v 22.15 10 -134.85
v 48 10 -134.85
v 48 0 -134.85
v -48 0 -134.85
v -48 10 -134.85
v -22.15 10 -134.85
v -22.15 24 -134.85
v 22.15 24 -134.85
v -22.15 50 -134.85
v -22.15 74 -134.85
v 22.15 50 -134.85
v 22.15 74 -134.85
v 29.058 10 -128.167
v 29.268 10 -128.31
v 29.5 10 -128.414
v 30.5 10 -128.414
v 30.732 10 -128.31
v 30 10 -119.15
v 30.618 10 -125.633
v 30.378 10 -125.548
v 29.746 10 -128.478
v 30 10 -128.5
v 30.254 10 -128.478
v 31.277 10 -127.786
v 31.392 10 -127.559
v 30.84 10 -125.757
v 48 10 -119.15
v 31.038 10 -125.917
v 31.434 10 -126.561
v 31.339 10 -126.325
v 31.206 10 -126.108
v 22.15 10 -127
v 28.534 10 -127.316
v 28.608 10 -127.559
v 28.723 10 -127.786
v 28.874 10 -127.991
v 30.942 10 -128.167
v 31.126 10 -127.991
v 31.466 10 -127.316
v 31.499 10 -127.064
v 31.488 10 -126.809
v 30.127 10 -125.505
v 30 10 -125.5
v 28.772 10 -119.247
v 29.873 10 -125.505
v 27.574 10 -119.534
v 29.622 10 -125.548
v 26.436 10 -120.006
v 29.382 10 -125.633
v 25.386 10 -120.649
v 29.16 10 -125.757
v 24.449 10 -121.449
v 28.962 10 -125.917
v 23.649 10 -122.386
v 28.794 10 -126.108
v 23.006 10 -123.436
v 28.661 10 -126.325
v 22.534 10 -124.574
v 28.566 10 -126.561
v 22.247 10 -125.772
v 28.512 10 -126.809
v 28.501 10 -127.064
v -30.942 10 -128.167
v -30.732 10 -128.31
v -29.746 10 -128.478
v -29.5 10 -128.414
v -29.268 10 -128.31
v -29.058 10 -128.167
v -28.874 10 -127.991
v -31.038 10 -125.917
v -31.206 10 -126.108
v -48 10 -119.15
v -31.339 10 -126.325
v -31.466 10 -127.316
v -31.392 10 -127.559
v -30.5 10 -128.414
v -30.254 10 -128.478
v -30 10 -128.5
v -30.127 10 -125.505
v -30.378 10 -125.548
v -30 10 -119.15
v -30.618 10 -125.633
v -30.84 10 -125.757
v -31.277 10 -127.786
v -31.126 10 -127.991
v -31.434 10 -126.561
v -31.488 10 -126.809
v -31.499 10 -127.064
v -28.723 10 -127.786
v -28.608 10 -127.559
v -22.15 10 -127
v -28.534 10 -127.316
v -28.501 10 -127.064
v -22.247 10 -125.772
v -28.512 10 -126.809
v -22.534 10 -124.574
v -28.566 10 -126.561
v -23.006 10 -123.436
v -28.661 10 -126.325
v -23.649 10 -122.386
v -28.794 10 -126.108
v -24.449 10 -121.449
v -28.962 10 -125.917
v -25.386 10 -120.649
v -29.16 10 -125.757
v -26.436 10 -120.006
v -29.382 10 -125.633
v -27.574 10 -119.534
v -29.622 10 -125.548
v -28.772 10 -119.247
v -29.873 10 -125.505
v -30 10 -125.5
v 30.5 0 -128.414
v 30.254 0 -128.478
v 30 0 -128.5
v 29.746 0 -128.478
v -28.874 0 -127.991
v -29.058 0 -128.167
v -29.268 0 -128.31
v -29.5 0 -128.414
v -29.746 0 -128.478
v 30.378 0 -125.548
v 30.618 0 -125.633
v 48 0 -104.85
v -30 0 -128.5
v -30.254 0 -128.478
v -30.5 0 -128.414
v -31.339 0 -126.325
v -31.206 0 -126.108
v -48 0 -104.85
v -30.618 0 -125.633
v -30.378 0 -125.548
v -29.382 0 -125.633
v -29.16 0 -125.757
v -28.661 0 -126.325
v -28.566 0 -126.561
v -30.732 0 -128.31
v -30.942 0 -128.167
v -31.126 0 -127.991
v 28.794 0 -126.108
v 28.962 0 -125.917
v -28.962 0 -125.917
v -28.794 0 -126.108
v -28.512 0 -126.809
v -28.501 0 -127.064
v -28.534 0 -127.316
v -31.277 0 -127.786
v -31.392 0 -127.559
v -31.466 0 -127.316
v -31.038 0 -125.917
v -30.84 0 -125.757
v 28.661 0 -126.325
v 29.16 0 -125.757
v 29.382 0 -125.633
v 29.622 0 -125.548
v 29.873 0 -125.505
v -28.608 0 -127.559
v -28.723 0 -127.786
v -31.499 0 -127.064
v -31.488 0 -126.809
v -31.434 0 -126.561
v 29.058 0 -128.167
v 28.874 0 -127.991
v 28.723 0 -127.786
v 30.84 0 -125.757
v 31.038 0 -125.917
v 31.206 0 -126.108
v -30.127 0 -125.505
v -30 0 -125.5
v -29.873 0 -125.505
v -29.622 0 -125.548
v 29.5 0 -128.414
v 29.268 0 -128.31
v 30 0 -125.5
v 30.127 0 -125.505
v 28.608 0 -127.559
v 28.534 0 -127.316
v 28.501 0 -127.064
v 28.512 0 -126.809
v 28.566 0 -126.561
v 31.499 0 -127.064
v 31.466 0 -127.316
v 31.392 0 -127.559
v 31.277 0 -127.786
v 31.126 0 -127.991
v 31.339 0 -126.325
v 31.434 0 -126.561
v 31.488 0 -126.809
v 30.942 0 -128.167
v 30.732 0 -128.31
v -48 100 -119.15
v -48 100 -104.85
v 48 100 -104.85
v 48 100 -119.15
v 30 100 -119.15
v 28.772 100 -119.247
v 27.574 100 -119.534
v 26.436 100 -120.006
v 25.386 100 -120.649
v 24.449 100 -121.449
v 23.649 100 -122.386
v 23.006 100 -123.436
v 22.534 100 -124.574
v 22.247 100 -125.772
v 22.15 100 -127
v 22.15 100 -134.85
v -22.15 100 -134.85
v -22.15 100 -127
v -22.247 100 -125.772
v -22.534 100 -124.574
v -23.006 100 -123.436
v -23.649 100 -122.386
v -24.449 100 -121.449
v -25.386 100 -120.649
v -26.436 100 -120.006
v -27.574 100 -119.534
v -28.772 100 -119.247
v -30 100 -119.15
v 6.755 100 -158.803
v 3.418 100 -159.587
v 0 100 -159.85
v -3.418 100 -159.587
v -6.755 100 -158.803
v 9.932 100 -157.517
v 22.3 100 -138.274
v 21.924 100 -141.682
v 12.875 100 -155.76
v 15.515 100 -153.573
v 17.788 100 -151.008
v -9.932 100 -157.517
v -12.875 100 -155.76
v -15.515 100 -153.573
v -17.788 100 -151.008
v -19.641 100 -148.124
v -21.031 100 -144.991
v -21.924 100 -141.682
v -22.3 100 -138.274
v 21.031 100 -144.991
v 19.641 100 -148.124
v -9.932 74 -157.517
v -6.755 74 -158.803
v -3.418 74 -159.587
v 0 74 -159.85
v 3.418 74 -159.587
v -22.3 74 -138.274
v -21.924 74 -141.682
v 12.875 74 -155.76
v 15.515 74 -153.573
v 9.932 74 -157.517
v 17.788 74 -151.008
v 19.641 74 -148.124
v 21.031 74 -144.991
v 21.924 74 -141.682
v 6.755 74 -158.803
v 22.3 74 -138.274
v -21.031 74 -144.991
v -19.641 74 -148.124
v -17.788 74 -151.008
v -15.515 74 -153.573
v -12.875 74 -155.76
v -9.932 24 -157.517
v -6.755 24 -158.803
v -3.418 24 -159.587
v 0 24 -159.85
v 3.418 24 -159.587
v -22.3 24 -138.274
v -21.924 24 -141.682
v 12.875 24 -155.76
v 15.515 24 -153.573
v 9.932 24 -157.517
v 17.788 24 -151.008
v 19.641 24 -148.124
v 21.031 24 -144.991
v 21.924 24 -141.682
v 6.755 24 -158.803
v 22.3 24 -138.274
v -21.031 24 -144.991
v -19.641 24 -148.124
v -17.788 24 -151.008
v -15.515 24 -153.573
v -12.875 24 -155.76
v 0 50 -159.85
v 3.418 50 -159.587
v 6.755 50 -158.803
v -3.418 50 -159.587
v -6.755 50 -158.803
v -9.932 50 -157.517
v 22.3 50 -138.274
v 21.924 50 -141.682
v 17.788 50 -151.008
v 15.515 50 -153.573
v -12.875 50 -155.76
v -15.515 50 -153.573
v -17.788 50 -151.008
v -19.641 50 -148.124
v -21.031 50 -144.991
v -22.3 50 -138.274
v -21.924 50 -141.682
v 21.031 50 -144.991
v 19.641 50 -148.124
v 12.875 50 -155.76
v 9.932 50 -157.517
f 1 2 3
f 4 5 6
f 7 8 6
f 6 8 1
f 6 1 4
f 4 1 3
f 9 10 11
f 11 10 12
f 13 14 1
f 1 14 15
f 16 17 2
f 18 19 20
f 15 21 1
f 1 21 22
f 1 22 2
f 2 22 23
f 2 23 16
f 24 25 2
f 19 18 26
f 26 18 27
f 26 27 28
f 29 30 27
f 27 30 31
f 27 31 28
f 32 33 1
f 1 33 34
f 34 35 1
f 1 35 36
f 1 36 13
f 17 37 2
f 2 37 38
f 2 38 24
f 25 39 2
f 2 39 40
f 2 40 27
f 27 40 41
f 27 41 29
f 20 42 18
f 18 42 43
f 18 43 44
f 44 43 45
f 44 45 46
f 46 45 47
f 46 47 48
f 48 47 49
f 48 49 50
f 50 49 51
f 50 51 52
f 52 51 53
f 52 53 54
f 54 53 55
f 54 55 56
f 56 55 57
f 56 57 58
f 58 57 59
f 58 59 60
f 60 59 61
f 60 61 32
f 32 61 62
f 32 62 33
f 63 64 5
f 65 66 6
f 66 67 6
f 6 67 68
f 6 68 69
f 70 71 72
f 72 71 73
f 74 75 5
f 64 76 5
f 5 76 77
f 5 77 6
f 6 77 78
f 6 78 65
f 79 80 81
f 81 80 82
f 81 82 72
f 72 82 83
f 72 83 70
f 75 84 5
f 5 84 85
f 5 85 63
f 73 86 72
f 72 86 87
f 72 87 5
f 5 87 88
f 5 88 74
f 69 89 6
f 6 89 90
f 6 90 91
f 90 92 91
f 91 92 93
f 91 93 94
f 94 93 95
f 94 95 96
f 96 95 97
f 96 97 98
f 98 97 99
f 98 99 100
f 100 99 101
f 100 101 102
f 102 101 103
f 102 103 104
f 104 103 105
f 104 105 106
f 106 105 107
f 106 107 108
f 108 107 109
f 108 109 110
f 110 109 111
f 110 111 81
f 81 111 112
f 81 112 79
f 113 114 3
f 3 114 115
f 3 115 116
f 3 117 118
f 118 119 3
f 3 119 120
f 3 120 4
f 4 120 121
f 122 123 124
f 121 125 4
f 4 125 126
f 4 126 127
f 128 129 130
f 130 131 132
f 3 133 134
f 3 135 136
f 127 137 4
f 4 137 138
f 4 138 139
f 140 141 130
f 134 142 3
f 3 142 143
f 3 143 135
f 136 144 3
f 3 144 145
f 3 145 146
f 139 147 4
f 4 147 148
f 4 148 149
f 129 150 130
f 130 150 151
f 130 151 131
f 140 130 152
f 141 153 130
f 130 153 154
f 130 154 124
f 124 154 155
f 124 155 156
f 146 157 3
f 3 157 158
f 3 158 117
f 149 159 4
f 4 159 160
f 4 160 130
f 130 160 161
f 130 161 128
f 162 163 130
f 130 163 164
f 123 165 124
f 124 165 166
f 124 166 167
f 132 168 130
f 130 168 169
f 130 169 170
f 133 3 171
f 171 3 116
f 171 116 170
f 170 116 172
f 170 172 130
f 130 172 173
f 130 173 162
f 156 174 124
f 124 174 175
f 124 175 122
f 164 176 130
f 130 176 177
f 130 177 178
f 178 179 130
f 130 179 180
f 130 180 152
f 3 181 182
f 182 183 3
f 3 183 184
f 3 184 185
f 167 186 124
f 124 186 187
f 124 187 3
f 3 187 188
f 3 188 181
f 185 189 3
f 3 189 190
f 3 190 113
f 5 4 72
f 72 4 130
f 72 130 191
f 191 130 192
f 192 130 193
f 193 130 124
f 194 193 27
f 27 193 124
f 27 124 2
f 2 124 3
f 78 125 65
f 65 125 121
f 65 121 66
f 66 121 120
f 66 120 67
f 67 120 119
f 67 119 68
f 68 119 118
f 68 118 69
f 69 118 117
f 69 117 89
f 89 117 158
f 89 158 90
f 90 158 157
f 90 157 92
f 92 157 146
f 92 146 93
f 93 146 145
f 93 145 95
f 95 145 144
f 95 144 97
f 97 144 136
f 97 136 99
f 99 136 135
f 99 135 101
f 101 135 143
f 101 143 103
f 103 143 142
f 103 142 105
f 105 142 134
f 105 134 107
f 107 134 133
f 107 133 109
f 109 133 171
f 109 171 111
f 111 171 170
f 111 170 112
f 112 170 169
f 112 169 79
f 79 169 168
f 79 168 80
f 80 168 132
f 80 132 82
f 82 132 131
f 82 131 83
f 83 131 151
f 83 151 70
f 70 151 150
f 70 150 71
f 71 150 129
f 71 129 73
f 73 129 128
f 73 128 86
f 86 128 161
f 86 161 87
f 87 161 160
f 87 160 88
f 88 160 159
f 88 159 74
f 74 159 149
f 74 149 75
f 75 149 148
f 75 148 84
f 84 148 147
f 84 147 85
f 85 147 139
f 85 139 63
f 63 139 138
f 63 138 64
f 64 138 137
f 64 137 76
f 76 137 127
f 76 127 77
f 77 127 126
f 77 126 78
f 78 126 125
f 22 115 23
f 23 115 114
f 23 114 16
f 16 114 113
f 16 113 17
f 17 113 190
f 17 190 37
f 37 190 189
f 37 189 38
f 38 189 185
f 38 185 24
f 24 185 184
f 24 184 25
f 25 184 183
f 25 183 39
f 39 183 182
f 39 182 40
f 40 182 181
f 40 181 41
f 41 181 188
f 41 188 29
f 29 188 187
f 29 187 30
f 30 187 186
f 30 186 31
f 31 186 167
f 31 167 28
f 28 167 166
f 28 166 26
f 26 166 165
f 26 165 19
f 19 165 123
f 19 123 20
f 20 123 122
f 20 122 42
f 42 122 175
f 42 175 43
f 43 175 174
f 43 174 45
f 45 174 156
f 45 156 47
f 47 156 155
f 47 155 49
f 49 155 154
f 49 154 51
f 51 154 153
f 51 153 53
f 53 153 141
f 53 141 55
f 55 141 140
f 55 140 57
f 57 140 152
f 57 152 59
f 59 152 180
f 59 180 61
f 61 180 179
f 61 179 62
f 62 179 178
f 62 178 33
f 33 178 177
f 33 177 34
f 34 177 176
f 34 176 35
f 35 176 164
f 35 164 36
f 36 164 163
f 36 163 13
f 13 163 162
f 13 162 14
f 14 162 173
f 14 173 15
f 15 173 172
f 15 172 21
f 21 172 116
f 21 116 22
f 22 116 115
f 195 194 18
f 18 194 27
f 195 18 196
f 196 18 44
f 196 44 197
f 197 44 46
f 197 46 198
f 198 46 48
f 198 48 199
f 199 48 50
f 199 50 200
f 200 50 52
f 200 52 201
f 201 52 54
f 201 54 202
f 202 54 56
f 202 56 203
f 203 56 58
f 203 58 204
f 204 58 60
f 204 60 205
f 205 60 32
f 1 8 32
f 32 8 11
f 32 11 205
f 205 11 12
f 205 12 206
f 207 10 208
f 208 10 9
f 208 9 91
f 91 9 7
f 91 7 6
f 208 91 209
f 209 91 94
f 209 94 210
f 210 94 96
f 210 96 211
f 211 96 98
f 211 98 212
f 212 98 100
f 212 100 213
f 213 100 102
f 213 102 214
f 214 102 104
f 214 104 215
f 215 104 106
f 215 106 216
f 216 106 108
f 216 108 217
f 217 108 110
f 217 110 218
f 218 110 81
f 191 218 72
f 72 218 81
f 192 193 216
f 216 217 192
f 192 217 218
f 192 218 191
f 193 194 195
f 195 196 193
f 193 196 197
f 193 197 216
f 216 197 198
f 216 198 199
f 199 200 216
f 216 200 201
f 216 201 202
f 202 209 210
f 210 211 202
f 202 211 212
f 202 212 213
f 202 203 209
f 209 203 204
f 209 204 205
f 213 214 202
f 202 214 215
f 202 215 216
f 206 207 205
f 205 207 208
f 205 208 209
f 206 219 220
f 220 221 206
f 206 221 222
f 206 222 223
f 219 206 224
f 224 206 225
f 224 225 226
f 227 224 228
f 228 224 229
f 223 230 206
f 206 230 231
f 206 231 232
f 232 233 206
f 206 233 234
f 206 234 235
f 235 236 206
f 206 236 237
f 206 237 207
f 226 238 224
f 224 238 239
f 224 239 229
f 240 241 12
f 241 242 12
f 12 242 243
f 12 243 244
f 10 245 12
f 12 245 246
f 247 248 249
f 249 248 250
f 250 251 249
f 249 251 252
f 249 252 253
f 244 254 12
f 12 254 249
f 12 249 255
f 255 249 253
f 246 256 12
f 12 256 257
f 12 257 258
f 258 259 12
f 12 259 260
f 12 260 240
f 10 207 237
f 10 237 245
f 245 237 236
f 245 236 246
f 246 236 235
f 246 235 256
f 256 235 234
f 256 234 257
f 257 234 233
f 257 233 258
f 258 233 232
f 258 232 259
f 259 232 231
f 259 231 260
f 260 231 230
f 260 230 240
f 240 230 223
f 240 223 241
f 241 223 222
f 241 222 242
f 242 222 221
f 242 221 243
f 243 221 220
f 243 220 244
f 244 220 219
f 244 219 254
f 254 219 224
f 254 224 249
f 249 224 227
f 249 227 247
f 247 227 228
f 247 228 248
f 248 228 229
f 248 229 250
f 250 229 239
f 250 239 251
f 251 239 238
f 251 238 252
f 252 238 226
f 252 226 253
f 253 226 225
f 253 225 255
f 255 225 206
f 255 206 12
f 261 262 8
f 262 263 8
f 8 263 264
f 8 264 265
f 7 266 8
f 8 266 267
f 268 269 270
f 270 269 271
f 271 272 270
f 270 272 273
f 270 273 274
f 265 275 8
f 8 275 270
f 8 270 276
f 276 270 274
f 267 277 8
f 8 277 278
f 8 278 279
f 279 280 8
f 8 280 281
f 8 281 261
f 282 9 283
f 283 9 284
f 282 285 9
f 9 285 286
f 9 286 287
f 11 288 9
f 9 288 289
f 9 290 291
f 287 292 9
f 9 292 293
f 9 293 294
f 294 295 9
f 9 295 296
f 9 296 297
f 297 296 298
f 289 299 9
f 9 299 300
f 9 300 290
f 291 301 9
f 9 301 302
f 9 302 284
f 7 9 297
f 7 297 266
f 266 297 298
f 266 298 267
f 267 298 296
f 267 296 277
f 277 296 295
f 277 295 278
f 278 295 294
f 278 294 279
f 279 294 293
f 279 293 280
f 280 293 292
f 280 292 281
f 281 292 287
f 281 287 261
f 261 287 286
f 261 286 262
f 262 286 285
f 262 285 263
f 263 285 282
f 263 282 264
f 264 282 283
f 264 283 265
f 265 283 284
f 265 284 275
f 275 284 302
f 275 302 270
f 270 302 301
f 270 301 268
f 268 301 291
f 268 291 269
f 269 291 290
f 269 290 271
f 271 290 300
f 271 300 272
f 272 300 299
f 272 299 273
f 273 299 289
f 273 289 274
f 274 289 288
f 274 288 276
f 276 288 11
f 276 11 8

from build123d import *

# Parameters (mm, degrees)
SKETCH2_W           = 96
SKETCH2_H           = 30
SKETCH2_R           = 1.5
BOSS_EXTRUDE2_DEPTH = 10
BOSS_EXTRUDE4_DEPTH = 100
BOSS_EXTRUDE5_DEPTH = 26
LPATTERN1_COUNT     = 2
LPATTERN1_PITCH     = 50


with BuildPart() as part:
    # Sketch2 → Boss-Extrude2 (new body)
    with BuildSketch(Plane(origin=(0, 0, 0), x_dir=(1, 0, 0), z_dir=(0, 1, 0))):
        with Locations((0, 119.85)):
            Rectangle(SKETCH2_W, SKETCH2_H)
        with Locations((-30, 127)):
            Circle(SKETCH2_R, mode=Mode.SUBTRACT)
        with Locations((30, 127)):
            Circle(SKETCH2_R, mode=Mode.SUBTRACT)
    extrude(amount=BOSS_EXTRUDE2_DEPTH)

    # Sketch4 → Boss-Extrude4 (add)
    with BuildSketch(Plane(origin=(0, 0, 0), x_dir=(1, 0, 0), z_dir=(0, 1, 0))):
        with BuildLine():
            Line((-22.15, 134.85), (22.15, 134.85))
            Line((22.15, 134.85), (22.15, 127))
            ThreePointArc((22.15, 127), (24.449211768, 121.449211768), (30, 119.15))
            Line((30, 119.15), (48, 119.15))
            Line((48, 119.15), (48, 104.85))
            Line((48, 104.85), (-48, 104.85))
            Line((-48, 104.85), (-48, 119.15))
            Line((-48, 119.15), (-30, 119.15))
            ThreePointArc((-30, 119.15), (-24.449211768, 121.449211768), (-22.15, 127))
            Line((-22.15, 127), (-22.15, 134.85))
        make_face()
    extrude(amount=BOSS_EXTRUDE4_DEPTH)

    # Sketch6 → Boss-Extrude5 (add)
    with BuildSketch(Plane(origin=(0, 100, 0), x_dir=(1, 0, 0), z_dir=(0, 1, 0))):
        with BuildLine():
            Line((22.15, 134.85), (22.15, 104.85))
            Line((22.15, 104.85), (-22.15, 104.85))
            Line((-22.15, 104.85), (-22.15, 134.85))
            ThreePointArc((-22.15, 134.85), (0, 159.85), (22.15, 134.85))
        make_face()
    boss_extrude5 = extrude(amount=-BOSS_EXTRUDE5_DEPTH)

    # LPattern1: Boss-Extrude5 ×2
    with Locations(*[(0, -i * LPATTERN1_PITCH, 0) for i in range(1, LPATTERN1_COUNT)]):
        add(boss_extrude5)


solid = part.part
